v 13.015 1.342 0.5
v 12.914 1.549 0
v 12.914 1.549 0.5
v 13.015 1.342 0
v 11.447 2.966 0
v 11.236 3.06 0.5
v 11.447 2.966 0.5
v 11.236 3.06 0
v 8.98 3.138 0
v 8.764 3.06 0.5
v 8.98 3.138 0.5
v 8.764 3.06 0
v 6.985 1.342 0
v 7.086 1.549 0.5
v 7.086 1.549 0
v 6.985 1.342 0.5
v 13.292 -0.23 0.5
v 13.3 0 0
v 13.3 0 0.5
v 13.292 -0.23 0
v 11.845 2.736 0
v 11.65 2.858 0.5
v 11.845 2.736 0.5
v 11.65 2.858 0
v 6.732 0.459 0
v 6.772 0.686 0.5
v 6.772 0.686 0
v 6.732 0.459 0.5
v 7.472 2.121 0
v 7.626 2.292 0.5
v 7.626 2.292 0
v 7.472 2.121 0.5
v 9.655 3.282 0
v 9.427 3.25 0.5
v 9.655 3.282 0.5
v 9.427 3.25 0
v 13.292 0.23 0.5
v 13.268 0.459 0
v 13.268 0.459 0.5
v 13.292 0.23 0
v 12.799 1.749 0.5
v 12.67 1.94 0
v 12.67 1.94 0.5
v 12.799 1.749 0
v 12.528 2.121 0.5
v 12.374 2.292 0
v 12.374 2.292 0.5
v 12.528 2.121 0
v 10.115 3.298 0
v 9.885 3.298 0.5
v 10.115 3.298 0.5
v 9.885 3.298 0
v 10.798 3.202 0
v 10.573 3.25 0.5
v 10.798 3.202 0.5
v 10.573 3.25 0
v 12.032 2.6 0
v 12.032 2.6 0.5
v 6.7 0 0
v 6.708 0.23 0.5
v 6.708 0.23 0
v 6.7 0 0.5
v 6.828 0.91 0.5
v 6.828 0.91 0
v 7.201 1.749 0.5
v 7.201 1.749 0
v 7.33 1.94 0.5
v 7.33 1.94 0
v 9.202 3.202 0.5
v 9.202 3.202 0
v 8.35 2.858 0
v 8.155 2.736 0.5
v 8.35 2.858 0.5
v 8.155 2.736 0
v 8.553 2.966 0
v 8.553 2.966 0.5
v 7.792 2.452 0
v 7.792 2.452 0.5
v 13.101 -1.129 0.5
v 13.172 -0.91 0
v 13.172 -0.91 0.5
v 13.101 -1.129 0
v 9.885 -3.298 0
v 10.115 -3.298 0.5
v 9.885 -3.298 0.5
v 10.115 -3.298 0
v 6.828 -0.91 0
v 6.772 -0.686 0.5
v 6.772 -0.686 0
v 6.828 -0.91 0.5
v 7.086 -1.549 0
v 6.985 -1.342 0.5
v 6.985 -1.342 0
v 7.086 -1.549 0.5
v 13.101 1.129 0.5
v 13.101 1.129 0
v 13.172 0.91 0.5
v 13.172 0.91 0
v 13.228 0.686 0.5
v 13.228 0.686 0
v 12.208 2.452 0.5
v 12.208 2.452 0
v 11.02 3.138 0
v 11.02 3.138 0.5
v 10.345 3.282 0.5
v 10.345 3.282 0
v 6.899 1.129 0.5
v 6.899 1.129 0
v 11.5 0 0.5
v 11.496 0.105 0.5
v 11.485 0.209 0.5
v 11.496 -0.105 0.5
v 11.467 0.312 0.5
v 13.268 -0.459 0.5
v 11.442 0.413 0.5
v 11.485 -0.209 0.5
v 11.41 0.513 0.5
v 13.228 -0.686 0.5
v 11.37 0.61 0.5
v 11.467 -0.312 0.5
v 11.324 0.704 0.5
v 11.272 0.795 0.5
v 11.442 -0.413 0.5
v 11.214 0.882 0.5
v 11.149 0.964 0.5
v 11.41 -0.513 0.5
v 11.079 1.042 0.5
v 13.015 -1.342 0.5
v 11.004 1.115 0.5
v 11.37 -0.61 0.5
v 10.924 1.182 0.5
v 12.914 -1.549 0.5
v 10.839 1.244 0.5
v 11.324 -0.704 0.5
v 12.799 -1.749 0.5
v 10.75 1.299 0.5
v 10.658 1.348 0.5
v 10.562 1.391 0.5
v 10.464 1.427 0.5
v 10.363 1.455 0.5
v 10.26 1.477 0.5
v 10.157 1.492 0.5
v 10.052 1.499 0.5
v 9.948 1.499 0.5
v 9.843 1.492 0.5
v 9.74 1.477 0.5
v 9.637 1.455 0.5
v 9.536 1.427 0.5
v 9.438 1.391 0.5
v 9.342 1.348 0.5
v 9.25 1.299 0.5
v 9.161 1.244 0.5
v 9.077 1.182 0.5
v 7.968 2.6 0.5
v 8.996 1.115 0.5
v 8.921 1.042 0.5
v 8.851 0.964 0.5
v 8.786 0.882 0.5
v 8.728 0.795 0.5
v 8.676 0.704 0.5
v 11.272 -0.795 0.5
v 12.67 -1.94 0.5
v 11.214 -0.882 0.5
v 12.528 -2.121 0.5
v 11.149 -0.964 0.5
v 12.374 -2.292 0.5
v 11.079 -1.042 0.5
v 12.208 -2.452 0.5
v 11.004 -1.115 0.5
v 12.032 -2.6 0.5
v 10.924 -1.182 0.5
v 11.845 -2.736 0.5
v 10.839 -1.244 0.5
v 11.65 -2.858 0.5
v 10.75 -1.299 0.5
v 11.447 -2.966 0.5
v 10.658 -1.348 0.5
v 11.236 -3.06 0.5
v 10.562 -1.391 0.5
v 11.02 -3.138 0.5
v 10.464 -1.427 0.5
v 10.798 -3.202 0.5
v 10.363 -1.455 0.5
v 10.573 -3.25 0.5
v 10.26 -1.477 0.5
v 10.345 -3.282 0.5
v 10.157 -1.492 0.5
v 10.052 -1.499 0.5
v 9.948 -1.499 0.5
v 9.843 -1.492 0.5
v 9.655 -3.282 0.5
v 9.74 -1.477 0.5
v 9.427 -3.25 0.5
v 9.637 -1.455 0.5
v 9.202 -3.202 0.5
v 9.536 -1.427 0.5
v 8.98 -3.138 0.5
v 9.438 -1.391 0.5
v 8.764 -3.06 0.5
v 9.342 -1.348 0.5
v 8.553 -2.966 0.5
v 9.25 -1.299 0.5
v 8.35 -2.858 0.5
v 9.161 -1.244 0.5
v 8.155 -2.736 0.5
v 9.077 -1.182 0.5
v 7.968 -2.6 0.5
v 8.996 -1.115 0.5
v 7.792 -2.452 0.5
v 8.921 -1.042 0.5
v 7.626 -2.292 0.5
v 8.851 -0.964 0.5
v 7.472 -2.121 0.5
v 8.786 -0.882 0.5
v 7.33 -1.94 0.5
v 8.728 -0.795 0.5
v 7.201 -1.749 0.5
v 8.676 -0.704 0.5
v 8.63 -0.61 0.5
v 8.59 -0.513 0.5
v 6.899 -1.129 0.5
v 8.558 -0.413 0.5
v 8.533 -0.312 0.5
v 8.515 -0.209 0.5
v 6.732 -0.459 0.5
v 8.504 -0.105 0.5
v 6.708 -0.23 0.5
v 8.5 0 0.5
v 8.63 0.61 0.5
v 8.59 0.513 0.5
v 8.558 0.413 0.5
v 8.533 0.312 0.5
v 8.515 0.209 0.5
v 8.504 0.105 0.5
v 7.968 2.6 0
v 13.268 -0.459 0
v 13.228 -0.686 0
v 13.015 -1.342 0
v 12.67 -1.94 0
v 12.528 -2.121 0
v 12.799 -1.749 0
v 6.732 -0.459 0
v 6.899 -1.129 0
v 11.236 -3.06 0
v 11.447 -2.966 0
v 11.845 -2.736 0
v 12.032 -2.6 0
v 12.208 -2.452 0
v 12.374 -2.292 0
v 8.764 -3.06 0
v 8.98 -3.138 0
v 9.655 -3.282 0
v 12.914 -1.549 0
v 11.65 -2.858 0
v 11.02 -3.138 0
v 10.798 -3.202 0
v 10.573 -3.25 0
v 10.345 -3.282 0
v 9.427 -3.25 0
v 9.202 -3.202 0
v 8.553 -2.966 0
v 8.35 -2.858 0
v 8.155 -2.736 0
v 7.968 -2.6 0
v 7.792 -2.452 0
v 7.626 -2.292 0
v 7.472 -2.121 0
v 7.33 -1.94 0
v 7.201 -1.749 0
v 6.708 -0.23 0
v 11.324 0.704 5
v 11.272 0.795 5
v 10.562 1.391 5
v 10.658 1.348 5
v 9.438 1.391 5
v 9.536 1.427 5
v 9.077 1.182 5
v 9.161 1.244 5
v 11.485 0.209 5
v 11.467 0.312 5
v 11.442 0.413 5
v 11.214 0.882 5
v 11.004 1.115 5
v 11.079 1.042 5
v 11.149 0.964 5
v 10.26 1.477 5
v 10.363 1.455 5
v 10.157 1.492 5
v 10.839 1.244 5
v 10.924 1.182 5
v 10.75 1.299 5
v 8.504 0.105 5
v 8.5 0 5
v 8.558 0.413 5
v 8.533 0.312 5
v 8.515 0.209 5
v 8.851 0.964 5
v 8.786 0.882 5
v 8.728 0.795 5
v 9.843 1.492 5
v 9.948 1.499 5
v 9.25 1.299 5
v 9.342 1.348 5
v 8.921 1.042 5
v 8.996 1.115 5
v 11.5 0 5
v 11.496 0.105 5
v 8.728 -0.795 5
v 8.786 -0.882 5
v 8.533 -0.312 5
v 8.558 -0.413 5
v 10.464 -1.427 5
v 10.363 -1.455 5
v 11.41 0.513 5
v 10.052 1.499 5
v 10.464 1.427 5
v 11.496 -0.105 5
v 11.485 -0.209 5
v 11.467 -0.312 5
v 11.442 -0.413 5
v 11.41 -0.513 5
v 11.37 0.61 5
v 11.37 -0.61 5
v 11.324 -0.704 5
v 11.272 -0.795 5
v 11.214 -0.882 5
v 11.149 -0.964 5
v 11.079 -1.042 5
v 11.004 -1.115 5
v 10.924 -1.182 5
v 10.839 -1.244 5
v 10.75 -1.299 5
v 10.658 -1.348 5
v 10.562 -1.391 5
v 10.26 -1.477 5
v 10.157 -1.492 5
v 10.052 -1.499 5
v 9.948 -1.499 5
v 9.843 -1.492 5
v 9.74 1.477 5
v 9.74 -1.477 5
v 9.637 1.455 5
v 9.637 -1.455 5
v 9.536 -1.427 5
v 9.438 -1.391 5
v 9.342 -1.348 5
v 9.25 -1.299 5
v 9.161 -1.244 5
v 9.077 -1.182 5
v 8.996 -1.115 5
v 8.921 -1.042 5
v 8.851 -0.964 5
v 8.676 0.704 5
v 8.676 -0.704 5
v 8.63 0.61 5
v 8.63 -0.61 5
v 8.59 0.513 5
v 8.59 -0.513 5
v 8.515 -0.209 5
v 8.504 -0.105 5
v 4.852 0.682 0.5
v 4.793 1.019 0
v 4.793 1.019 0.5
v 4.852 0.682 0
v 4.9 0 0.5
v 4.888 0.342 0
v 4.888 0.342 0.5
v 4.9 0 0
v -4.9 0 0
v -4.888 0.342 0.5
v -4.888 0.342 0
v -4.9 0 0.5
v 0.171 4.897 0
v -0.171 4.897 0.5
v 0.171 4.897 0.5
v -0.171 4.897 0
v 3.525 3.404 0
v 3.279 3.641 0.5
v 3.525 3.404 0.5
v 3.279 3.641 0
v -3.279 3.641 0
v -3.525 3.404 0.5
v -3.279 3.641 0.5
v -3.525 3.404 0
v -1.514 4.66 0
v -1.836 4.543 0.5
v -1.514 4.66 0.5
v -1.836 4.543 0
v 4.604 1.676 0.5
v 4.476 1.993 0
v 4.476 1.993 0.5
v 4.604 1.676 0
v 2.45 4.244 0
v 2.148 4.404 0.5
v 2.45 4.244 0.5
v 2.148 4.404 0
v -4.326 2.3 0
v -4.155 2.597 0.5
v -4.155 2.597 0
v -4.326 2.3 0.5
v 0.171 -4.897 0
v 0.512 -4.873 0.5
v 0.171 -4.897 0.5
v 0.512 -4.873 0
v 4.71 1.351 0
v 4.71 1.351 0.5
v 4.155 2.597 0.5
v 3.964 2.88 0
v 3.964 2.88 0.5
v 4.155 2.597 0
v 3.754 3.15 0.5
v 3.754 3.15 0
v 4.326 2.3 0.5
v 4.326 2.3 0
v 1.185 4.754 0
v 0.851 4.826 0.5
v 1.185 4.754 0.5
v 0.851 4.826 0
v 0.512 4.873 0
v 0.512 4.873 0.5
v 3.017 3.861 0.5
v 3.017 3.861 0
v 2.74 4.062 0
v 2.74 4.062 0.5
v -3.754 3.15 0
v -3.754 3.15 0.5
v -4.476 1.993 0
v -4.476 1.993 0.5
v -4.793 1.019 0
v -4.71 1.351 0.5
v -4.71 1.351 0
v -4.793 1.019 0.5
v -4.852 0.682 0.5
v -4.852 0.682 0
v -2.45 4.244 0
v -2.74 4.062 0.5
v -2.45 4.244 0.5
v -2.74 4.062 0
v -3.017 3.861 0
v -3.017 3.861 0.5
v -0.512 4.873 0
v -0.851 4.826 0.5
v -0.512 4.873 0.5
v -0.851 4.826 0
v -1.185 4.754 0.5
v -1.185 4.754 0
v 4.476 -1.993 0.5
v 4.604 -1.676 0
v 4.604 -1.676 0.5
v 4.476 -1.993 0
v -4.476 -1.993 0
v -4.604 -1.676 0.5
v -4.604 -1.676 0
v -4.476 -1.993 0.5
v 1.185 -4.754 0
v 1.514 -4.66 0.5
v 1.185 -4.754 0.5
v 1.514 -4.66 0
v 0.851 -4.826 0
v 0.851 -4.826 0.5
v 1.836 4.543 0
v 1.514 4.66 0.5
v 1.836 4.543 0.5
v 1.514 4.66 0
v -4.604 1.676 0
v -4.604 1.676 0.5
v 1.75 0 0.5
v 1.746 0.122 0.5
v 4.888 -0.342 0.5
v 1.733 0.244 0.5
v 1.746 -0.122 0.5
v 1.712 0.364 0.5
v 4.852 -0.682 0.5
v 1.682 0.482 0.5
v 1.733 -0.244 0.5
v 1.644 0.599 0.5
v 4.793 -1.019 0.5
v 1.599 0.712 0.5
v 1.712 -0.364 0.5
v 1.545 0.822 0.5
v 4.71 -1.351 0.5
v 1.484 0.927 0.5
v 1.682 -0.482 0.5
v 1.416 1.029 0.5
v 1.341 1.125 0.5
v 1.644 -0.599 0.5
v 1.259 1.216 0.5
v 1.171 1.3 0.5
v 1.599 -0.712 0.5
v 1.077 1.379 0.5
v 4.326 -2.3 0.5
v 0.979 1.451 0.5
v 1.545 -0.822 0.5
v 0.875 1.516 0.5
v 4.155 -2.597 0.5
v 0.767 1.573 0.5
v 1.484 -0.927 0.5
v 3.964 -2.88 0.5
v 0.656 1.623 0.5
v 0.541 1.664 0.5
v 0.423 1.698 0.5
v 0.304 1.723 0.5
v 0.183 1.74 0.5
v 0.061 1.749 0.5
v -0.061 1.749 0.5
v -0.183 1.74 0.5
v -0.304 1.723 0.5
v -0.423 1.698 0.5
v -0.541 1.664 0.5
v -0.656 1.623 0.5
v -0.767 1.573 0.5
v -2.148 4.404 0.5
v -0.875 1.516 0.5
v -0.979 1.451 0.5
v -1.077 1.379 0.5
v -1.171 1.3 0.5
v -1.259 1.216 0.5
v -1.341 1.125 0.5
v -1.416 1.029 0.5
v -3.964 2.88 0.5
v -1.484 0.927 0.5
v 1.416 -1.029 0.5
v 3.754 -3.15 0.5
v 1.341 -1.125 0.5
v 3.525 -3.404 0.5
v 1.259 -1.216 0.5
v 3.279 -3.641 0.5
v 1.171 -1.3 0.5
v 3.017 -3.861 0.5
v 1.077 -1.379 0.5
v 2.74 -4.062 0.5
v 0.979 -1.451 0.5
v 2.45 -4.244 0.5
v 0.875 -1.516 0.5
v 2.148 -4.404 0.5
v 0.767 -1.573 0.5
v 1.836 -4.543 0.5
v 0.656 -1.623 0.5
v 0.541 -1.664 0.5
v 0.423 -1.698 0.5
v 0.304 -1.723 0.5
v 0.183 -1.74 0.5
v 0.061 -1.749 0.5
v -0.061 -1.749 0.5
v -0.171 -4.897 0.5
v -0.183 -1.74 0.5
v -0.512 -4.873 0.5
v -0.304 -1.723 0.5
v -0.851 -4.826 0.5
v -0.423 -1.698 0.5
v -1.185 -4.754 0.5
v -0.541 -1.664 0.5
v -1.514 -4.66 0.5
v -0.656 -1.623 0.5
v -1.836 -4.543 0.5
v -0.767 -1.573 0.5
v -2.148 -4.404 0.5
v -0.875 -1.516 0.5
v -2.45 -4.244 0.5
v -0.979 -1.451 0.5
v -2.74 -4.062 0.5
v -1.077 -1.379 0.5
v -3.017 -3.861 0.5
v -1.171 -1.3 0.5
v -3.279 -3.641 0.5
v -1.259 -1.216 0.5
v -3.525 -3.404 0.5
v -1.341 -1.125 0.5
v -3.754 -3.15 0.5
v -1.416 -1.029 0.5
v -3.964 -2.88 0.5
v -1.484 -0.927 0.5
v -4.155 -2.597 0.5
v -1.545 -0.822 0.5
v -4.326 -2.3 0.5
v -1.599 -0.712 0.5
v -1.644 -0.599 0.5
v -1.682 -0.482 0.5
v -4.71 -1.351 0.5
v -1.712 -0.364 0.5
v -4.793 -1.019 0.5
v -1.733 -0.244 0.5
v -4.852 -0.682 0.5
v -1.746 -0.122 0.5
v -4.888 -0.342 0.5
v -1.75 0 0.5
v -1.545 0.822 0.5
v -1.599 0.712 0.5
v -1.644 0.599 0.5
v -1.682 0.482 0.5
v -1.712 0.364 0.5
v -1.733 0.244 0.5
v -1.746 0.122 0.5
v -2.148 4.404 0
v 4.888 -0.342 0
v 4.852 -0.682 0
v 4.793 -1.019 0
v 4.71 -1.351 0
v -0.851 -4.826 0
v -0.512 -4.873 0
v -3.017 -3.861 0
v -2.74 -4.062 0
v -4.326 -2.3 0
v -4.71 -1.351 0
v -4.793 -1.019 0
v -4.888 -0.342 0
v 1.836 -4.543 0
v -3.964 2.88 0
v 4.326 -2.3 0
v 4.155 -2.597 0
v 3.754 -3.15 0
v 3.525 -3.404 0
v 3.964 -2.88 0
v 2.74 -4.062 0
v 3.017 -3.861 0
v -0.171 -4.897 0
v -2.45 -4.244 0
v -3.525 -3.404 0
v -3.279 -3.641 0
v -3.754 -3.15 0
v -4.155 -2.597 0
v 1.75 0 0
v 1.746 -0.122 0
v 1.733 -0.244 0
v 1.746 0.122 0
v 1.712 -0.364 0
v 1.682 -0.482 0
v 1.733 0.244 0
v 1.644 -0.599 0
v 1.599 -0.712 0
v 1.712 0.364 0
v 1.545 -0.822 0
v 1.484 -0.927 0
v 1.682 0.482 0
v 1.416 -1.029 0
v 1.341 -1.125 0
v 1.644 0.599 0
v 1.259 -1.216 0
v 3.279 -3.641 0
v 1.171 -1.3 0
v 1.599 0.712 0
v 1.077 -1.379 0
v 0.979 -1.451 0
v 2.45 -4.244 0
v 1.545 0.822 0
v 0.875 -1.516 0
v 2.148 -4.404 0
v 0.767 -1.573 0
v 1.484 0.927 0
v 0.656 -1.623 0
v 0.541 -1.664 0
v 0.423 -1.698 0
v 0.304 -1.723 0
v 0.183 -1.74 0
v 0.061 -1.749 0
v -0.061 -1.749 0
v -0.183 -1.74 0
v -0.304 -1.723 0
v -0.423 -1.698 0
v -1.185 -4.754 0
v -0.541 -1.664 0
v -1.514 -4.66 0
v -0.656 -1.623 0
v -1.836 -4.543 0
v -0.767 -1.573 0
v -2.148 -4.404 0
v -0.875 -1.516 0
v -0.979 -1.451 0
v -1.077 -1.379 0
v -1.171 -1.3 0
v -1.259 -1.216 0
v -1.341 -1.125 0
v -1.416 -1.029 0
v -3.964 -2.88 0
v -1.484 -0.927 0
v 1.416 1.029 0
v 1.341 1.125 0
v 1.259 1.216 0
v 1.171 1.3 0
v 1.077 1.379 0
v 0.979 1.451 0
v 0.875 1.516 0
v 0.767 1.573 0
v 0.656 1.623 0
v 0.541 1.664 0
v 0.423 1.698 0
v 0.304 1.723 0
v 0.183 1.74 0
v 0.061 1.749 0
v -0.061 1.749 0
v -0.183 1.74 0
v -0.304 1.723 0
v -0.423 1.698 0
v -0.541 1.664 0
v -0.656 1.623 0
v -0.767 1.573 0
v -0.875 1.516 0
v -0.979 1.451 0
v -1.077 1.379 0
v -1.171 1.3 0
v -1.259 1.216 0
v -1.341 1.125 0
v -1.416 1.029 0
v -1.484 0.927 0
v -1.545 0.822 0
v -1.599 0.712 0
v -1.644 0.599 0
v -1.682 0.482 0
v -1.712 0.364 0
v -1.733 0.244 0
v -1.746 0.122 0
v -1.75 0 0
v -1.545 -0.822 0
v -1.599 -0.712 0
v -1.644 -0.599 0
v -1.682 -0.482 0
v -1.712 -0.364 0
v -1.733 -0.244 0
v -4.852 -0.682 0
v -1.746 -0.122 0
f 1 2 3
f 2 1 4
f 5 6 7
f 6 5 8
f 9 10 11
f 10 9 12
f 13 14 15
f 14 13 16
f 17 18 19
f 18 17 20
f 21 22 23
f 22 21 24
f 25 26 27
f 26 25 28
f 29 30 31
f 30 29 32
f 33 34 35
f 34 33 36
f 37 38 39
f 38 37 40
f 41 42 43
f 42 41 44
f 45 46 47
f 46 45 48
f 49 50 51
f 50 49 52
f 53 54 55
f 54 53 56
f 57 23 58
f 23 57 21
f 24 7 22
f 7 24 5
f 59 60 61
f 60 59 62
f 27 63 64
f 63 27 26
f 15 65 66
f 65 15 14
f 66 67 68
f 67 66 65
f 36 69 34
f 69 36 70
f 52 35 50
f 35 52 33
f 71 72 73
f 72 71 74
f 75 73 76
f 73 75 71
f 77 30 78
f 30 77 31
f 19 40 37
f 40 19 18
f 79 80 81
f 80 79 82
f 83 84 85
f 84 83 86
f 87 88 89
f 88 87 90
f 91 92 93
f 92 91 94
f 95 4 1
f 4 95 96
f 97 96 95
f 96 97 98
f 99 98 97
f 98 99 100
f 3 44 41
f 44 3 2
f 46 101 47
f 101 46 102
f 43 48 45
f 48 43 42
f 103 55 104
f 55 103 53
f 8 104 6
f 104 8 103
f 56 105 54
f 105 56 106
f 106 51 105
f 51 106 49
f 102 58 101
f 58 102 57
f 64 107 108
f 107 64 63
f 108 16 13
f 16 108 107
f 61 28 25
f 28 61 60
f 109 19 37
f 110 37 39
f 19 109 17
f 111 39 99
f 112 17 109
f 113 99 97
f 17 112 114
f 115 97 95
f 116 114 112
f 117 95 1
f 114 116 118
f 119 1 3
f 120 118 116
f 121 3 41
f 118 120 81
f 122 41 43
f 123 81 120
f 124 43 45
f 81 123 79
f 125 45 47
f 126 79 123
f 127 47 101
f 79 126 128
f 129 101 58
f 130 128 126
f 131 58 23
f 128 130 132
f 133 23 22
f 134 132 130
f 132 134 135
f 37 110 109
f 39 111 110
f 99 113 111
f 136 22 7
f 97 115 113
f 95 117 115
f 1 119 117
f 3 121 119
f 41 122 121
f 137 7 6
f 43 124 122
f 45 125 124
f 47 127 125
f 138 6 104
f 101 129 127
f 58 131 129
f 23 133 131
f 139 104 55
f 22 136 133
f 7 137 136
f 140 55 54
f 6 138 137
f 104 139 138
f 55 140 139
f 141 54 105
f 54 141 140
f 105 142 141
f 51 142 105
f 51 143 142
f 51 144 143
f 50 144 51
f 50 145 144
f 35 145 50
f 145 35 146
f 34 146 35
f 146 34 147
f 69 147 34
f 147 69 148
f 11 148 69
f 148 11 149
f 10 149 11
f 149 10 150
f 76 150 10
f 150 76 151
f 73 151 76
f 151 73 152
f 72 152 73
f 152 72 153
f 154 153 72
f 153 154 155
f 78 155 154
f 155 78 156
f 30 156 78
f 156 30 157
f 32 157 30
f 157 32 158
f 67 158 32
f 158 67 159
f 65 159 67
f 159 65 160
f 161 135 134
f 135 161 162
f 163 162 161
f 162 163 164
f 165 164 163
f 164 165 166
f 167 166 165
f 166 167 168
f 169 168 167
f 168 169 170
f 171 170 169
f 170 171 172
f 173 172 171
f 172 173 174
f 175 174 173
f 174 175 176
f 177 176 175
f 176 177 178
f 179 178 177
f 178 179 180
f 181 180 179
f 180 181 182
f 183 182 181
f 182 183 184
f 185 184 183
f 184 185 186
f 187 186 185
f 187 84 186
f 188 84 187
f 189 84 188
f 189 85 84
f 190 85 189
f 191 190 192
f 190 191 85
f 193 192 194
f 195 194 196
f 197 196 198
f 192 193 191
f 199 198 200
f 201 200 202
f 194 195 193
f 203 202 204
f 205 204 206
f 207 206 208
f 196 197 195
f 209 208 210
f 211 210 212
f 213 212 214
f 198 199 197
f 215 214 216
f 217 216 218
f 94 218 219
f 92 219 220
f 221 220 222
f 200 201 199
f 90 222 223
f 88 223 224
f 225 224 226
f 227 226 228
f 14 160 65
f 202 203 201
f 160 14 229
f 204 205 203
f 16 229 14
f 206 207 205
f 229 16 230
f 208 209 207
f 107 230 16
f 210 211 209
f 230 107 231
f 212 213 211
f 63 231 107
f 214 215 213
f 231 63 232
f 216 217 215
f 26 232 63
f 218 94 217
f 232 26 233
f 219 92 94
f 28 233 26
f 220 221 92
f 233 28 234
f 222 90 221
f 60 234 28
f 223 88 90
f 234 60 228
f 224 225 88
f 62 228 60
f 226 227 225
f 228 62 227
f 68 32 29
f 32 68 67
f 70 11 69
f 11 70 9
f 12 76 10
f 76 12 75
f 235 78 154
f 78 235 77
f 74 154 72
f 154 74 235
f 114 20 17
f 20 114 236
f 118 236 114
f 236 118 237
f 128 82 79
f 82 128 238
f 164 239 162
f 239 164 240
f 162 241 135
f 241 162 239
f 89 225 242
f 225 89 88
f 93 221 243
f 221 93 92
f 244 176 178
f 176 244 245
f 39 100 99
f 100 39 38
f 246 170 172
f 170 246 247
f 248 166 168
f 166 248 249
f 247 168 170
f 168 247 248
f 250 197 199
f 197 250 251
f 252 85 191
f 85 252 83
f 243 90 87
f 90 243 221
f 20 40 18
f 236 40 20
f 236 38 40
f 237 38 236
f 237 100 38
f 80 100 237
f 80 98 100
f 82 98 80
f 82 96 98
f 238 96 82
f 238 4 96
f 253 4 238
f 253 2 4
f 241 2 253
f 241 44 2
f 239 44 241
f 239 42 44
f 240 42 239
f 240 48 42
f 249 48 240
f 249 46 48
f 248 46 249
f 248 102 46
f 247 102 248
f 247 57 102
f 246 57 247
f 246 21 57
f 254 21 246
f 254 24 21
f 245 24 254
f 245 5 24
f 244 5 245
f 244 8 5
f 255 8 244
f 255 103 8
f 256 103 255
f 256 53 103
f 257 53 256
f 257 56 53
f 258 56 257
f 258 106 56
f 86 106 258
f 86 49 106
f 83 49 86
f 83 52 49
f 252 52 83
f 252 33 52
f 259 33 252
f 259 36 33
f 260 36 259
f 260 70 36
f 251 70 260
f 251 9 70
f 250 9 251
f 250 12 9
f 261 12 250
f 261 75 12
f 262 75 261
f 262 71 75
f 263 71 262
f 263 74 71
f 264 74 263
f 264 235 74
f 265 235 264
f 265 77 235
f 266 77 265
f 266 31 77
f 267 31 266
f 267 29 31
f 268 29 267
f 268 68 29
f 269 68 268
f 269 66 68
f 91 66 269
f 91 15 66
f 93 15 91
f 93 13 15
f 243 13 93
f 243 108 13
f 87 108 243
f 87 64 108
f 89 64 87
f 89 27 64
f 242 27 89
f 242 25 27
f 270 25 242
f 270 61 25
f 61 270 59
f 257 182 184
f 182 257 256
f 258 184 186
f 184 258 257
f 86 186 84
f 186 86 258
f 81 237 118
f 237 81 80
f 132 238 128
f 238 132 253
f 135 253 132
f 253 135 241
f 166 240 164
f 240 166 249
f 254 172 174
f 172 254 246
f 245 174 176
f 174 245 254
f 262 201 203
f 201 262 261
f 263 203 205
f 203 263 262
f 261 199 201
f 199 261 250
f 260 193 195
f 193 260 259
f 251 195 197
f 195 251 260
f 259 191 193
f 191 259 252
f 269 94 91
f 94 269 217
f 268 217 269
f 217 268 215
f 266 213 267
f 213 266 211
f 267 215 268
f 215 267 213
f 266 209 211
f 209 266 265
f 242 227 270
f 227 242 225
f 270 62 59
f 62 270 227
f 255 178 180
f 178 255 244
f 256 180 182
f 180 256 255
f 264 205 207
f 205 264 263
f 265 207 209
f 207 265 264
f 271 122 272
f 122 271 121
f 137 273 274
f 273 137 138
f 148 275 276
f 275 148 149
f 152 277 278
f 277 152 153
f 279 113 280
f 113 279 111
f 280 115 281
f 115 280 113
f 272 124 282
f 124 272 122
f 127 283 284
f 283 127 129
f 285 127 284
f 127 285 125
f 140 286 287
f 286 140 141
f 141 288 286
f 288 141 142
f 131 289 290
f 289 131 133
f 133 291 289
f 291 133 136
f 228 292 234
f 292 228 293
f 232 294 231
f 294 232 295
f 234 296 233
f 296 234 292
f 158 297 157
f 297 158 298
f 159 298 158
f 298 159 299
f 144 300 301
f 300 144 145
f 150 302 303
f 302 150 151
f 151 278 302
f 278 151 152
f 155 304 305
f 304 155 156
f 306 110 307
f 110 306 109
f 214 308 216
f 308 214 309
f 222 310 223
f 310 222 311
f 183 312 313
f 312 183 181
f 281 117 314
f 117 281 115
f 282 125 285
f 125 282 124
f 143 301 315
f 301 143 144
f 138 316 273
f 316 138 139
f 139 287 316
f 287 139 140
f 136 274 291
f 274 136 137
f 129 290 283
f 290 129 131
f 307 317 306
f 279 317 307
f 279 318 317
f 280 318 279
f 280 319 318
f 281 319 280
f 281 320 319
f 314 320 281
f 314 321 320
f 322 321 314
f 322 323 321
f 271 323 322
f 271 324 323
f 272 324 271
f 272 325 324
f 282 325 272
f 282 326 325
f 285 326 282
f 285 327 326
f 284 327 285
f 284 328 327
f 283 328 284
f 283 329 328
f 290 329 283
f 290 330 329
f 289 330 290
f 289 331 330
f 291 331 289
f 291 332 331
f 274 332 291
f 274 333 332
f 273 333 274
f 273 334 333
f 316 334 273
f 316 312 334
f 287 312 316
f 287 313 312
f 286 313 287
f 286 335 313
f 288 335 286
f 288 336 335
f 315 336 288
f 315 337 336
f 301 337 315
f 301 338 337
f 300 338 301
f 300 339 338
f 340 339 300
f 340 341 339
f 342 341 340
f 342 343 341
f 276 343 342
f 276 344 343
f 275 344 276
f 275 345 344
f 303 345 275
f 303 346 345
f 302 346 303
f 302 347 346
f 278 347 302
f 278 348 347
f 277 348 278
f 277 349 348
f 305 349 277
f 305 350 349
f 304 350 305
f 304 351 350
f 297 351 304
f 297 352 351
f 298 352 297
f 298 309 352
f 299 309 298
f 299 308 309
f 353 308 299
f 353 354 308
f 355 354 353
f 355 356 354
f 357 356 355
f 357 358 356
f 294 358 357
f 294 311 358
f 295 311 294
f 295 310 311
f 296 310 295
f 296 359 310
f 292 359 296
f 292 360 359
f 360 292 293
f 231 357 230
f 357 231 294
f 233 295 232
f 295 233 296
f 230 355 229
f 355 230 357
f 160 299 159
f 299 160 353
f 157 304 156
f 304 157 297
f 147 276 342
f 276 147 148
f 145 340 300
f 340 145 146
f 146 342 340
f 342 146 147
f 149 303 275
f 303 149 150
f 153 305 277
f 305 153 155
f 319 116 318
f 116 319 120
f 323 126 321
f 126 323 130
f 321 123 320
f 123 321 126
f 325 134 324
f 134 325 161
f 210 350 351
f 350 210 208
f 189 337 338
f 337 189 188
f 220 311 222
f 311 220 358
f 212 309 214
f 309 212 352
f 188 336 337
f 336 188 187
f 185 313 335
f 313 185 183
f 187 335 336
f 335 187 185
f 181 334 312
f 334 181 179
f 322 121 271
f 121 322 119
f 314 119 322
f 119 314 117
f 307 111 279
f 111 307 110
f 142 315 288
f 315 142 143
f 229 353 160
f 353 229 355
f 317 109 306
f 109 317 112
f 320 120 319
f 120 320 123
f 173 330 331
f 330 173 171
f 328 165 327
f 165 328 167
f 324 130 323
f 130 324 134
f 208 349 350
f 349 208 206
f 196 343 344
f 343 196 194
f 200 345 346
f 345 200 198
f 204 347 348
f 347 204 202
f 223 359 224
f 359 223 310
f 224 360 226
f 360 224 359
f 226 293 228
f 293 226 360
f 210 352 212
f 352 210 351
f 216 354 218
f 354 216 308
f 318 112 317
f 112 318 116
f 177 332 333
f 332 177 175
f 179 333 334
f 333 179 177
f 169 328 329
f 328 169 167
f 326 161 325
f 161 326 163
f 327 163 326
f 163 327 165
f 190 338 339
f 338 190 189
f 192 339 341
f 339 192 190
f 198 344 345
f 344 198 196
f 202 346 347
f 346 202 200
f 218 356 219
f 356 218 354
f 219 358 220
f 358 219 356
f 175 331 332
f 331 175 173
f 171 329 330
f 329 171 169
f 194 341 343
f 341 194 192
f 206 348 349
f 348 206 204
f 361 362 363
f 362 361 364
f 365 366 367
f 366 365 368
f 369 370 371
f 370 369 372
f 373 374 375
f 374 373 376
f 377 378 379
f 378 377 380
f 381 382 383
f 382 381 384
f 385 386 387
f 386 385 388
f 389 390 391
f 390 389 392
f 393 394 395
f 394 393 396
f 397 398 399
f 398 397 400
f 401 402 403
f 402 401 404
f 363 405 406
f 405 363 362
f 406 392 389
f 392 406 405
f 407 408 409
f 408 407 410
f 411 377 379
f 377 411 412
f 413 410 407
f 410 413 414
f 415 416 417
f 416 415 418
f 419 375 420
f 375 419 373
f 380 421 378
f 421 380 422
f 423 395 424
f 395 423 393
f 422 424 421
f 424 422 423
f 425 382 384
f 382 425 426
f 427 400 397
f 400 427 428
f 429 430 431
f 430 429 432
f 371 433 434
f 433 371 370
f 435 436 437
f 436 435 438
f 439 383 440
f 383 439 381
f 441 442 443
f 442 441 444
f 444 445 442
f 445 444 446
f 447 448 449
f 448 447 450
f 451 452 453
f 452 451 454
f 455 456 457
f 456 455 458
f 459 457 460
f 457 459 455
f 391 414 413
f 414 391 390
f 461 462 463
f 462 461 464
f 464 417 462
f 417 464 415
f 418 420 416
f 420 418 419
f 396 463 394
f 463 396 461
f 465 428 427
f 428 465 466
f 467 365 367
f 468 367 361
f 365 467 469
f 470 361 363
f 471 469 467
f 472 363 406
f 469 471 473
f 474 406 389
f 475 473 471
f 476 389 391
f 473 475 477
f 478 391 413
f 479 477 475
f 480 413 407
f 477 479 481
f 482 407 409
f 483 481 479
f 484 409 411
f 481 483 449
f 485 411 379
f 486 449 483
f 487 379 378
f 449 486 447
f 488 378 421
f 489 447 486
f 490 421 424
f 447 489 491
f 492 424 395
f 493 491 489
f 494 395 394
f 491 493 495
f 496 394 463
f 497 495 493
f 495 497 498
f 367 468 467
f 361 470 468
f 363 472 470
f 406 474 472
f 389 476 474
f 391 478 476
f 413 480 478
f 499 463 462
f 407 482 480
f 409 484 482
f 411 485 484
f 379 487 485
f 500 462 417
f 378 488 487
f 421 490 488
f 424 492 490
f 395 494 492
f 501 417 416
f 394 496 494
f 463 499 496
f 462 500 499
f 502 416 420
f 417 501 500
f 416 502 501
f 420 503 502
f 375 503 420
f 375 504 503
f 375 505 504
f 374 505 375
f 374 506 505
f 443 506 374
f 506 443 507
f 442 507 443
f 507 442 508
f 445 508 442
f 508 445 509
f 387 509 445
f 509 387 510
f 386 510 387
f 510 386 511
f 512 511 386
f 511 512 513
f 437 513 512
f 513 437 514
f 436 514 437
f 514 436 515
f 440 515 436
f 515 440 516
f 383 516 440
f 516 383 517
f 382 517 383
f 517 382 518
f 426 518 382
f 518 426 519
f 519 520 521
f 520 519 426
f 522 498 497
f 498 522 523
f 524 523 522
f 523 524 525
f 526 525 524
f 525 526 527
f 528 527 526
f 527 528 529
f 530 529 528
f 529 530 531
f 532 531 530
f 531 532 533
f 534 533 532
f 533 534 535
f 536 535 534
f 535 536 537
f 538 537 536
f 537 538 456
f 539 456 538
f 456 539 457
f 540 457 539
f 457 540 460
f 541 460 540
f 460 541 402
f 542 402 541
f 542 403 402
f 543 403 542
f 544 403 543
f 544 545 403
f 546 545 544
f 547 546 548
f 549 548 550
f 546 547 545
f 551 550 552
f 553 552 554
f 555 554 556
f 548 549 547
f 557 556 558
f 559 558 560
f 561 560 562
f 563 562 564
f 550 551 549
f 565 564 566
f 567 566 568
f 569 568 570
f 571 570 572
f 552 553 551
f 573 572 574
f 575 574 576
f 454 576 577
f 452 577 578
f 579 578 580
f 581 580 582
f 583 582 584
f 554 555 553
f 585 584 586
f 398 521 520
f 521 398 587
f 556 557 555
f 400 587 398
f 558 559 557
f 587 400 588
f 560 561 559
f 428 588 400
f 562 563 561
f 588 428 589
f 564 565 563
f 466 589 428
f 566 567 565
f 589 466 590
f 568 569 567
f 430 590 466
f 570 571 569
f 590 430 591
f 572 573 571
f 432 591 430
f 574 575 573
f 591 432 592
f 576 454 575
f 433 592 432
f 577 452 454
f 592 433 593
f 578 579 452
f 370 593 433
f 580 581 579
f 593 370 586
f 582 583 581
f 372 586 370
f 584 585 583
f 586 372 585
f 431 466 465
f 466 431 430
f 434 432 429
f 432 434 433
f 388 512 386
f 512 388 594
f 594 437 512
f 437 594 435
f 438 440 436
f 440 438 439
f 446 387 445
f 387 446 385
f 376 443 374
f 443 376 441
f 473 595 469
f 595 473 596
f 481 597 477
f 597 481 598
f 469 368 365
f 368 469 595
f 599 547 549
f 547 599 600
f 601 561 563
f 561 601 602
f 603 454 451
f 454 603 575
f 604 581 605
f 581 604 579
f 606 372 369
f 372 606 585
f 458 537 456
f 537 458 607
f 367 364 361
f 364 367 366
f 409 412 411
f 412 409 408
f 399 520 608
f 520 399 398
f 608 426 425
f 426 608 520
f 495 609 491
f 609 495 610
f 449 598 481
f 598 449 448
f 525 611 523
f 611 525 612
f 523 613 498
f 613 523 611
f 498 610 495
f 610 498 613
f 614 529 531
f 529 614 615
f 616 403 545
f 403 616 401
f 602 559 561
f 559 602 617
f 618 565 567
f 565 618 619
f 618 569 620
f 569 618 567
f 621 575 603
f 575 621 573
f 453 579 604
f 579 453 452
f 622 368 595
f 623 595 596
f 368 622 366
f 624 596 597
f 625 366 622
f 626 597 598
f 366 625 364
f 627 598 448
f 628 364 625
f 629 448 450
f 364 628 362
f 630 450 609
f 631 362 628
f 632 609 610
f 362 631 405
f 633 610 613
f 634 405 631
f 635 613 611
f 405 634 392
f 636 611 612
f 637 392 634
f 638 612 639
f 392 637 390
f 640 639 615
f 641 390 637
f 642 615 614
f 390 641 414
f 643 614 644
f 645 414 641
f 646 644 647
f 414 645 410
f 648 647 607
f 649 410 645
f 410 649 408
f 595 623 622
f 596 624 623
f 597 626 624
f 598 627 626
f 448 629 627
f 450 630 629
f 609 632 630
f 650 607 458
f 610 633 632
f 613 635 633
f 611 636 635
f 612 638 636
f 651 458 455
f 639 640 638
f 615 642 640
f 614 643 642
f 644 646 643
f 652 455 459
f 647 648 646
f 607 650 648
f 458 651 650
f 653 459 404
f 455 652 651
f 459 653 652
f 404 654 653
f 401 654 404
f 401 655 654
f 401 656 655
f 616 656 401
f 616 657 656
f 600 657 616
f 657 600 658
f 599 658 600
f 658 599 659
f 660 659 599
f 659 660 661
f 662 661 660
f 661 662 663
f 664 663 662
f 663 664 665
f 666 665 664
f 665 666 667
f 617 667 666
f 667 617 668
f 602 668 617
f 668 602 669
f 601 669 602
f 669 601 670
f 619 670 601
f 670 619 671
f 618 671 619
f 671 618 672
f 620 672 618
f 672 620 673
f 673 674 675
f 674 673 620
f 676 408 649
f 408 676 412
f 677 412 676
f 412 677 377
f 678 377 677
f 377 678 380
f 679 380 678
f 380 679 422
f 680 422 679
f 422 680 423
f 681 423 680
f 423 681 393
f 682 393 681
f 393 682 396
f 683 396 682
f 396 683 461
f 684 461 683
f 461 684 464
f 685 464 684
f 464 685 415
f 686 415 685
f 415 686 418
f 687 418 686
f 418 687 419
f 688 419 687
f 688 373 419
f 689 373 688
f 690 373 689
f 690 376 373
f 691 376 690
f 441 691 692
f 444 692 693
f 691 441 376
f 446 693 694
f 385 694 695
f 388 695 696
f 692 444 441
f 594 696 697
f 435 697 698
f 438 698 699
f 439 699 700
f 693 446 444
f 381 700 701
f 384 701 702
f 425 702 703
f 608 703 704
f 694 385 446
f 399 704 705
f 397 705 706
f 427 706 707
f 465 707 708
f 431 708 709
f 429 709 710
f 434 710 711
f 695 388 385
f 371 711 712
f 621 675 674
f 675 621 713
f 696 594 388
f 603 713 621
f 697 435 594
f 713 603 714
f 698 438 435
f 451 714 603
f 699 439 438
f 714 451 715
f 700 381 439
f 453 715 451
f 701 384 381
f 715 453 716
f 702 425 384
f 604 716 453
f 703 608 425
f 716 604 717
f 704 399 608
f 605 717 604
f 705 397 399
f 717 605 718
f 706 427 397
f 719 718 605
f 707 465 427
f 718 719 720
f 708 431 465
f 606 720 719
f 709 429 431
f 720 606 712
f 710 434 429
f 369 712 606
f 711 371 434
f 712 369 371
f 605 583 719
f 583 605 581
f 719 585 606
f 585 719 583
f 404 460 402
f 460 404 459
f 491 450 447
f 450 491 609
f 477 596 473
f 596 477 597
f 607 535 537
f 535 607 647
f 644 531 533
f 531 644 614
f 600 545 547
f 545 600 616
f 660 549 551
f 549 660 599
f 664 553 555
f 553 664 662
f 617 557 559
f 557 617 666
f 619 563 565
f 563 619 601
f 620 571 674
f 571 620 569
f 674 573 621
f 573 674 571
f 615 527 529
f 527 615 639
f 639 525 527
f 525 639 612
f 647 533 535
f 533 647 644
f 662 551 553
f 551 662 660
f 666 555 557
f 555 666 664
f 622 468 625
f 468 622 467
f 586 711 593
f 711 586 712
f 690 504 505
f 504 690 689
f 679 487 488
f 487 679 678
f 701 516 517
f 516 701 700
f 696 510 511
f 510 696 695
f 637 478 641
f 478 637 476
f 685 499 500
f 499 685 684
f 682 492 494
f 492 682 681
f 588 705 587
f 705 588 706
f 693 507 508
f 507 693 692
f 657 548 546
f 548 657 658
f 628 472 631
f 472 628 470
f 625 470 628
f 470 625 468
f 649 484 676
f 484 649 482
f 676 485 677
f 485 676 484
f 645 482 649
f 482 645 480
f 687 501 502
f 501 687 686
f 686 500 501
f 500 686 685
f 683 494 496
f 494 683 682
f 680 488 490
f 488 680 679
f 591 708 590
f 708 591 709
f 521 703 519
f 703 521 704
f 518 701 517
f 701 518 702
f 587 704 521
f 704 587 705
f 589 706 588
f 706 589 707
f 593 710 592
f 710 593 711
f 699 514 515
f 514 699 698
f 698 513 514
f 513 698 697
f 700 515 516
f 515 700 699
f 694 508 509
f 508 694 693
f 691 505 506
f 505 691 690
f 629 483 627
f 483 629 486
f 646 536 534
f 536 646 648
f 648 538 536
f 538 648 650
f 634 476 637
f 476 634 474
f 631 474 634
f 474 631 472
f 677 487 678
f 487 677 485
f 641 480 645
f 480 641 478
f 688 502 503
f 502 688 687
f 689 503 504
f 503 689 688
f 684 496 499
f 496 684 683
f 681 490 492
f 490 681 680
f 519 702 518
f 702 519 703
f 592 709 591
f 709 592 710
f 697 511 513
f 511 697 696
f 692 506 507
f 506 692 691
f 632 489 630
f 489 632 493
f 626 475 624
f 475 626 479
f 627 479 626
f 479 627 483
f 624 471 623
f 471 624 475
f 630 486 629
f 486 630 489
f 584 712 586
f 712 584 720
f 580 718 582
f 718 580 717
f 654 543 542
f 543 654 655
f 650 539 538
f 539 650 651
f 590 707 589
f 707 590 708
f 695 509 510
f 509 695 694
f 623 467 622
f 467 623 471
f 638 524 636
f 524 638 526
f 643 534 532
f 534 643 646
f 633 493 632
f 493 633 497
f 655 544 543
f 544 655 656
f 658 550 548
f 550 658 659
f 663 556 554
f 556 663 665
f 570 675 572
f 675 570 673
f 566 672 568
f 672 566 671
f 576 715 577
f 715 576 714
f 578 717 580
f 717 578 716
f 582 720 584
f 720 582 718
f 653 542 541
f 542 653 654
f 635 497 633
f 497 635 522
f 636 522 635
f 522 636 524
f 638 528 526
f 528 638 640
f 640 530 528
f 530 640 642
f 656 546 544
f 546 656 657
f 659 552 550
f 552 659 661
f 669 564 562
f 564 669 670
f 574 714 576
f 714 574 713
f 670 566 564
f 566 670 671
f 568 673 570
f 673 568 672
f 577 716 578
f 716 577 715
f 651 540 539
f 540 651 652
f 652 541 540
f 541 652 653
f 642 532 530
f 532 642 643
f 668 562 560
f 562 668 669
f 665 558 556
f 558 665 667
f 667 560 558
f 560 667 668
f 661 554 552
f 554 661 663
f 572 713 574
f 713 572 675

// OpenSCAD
$fn=90;

/*
cylinder(h=0.5, r=5);
cylinder(h=1.6, r=3.25);
cylinder(h=5, r=1.5);
*/

/*
translate([0, 0, 0.5]) cylinder(h=0.5, r=3.5);
cylinder(h=1, r=3.3);
cylinder(h=5, r=1.5);
*/

translate([10, 0, 0]) {
    cylinder(h=0.5, r=3.3);
    cylinder(h=5, r=1.5);
}

difference() {
    cylinder(h=0.5, r=4.9);
    translate([0, 0, -1]) cylinder(h=5, r=1.75);
}
